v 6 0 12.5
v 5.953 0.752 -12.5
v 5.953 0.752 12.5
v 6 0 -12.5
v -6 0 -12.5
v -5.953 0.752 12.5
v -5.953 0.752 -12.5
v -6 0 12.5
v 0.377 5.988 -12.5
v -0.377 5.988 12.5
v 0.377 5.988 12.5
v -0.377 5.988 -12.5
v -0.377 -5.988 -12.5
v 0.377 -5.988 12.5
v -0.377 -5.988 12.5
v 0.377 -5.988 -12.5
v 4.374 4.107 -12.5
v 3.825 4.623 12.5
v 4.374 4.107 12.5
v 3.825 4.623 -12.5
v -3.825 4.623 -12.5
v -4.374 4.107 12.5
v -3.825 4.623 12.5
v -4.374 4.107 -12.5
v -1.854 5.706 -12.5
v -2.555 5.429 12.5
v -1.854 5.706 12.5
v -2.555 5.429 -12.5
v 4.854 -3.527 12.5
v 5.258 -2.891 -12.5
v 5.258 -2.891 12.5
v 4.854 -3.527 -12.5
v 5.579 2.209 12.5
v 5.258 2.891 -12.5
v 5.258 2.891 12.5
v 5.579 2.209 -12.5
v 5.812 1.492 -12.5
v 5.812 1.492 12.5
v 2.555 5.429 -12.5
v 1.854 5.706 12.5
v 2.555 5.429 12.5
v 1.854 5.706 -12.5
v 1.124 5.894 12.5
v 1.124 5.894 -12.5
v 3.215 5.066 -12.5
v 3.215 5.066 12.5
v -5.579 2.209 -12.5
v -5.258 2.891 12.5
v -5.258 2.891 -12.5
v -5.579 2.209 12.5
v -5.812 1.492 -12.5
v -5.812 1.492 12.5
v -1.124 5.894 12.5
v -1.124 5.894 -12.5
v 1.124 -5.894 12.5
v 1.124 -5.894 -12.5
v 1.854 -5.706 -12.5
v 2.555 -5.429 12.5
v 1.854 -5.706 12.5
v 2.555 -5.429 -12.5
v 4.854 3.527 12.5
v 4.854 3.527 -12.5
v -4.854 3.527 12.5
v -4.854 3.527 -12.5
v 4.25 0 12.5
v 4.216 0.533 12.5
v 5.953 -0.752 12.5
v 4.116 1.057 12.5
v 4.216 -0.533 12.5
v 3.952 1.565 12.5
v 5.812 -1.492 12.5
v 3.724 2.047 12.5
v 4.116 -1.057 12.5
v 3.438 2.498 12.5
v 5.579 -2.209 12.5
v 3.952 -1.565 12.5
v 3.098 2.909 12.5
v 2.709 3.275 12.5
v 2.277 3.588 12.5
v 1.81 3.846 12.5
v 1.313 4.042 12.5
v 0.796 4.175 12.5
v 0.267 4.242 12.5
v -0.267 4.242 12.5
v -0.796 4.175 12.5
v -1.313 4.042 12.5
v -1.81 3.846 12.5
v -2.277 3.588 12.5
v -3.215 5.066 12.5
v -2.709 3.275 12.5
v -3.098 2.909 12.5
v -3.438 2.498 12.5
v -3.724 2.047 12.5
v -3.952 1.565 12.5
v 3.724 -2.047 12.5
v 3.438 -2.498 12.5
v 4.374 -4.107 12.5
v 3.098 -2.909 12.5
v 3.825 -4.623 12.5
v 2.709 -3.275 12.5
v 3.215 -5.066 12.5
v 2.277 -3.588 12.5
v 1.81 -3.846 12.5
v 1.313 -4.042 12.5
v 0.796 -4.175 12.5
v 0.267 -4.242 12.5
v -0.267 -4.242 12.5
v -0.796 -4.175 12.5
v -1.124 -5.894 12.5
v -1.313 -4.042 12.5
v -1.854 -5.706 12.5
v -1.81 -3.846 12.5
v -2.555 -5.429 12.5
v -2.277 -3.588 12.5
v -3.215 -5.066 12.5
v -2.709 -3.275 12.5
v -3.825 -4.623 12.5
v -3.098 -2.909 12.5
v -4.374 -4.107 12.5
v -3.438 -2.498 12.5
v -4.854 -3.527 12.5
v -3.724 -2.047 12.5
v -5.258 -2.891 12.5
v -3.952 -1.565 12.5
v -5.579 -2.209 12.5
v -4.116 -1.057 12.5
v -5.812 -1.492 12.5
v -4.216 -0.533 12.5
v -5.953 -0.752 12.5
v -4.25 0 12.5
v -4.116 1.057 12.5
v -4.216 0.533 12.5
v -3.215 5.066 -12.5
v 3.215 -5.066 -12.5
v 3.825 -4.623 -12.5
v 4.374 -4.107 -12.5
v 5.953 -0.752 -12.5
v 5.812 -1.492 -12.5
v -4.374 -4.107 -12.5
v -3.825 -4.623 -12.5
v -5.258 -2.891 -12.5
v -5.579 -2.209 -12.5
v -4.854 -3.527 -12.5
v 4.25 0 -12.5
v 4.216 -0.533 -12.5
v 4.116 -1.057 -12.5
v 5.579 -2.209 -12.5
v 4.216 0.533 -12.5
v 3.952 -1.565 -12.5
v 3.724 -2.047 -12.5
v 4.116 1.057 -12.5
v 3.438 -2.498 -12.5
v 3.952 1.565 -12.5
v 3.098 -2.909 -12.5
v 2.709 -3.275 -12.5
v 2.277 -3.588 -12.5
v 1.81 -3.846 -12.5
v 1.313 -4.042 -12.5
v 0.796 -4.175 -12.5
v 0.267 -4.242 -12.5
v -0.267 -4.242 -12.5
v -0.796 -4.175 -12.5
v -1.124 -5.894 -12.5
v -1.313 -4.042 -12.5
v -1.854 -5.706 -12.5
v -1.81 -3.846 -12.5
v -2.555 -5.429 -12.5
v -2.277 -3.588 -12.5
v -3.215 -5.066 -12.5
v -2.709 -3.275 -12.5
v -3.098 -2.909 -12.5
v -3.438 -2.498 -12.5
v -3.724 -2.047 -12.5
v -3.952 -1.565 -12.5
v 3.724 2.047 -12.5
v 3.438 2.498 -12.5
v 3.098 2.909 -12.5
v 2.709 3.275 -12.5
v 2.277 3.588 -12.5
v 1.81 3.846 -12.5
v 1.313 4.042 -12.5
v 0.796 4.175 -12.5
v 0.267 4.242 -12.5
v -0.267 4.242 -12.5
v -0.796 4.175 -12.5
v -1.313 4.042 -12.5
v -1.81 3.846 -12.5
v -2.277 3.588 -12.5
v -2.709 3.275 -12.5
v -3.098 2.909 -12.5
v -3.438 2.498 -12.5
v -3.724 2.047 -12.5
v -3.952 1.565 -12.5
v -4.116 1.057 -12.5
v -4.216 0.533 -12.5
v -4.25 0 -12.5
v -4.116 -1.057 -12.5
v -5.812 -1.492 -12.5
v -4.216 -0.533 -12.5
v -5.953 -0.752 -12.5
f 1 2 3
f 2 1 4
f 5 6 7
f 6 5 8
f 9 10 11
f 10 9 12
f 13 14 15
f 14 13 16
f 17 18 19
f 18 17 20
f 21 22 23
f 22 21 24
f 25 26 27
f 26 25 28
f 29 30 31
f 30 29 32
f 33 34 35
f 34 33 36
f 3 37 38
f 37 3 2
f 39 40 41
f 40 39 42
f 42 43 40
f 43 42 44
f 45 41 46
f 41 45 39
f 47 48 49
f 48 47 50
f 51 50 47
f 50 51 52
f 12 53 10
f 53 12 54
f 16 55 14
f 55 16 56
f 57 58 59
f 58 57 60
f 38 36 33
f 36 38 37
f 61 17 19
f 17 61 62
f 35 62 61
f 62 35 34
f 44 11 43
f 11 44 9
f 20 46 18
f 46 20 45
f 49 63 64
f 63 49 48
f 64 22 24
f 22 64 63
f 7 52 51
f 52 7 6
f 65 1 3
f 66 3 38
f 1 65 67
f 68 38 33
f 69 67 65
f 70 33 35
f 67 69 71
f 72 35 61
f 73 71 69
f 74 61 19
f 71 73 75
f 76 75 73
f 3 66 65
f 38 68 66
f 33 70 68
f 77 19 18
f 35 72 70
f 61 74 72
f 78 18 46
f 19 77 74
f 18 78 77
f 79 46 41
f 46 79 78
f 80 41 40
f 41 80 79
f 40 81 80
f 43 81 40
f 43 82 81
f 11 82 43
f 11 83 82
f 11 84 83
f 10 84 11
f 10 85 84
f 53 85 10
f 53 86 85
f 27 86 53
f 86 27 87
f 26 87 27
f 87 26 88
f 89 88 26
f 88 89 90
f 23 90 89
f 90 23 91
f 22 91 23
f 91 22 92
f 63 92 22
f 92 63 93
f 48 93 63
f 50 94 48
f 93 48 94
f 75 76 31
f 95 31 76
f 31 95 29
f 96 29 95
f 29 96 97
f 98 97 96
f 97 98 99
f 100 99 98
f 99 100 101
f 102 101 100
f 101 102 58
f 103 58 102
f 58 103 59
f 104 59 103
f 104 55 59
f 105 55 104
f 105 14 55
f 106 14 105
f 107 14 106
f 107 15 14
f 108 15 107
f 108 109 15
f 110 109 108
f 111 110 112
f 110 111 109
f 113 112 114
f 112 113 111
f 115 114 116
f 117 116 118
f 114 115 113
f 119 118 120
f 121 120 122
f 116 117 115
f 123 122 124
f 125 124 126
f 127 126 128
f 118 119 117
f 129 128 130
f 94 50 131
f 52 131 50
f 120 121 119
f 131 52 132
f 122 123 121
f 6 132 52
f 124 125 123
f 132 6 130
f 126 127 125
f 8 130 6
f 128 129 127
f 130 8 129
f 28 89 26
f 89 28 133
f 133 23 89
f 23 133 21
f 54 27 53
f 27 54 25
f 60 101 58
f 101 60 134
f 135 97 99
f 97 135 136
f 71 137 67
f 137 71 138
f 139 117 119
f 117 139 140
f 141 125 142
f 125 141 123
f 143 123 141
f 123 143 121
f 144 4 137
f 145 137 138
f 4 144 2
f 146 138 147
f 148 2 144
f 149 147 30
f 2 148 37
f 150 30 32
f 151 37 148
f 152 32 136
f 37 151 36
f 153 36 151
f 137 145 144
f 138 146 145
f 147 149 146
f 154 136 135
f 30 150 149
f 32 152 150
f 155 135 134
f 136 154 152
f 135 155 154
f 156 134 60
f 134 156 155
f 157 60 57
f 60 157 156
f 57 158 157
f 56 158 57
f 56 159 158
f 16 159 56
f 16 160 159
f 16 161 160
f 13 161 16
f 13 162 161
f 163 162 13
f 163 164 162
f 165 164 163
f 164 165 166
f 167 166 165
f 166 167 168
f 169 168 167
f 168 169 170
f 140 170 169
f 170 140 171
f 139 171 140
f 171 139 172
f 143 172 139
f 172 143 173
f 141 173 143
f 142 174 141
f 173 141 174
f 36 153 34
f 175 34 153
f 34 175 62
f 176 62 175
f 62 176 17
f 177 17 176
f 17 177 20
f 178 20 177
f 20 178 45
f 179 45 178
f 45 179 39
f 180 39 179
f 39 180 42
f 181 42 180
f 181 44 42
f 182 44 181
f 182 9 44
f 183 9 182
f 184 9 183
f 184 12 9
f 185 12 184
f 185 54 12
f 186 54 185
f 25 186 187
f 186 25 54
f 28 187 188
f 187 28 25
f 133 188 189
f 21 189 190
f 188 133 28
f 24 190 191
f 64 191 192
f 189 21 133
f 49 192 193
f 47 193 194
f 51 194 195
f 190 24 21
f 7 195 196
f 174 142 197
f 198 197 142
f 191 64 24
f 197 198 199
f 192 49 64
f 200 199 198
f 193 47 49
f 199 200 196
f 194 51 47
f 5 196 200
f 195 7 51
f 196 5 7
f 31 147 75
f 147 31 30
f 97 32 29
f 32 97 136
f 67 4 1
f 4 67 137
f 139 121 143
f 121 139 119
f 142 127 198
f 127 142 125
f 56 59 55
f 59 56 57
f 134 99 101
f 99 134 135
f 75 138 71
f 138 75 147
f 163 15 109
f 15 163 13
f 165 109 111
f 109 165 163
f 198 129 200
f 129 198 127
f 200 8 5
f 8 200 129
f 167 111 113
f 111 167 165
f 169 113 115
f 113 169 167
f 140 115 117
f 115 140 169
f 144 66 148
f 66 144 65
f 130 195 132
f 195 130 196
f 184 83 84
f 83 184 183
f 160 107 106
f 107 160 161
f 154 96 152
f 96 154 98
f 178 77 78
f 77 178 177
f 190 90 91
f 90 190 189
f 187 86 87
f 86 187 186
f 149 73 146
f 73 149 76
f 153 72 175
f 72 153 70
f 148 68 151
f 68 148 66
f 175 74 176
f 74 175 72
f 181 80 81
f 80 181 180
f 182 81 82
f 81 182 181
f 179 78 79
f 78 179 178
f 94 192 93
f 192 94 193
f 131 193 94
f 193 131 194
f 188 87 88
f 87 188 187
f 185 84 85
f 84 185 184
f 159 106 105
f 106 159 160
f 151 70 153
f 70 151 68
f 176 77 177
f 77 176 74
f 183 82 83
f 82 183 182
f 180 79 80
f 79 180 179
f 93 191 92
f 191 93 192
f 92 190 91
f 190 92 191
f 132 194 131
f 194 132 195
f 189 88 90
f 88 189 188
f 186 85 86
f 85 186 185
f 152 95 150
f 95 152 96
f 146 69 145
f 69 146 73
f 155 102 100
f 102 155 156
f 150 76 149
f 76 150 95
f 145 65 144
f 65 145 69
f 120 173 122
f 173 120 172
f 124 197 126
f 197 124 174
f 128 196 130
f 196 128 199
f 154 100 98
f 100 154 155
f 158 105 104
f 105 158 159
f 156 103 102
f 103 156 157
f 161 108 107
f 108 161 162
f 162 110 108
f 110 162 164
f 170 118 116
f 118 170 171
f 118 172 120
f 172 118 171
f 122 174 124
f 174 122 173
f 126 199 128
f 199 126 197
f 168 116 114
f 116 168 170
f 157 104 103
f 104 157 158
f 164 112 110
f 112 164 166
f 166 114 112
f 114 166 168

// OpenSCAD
$fn = 50;


difference() {
	union() {
		translate(v = [0, 0, -12.5000000000]) {
			cylinder(h = 25, r = 6.0000000000);
		}
	}
	union() {
		translate(v = [0, 0, -100.0000000000]) {
			cylinder(h = 200, r = 4.2500000000);
		}
	}
}
